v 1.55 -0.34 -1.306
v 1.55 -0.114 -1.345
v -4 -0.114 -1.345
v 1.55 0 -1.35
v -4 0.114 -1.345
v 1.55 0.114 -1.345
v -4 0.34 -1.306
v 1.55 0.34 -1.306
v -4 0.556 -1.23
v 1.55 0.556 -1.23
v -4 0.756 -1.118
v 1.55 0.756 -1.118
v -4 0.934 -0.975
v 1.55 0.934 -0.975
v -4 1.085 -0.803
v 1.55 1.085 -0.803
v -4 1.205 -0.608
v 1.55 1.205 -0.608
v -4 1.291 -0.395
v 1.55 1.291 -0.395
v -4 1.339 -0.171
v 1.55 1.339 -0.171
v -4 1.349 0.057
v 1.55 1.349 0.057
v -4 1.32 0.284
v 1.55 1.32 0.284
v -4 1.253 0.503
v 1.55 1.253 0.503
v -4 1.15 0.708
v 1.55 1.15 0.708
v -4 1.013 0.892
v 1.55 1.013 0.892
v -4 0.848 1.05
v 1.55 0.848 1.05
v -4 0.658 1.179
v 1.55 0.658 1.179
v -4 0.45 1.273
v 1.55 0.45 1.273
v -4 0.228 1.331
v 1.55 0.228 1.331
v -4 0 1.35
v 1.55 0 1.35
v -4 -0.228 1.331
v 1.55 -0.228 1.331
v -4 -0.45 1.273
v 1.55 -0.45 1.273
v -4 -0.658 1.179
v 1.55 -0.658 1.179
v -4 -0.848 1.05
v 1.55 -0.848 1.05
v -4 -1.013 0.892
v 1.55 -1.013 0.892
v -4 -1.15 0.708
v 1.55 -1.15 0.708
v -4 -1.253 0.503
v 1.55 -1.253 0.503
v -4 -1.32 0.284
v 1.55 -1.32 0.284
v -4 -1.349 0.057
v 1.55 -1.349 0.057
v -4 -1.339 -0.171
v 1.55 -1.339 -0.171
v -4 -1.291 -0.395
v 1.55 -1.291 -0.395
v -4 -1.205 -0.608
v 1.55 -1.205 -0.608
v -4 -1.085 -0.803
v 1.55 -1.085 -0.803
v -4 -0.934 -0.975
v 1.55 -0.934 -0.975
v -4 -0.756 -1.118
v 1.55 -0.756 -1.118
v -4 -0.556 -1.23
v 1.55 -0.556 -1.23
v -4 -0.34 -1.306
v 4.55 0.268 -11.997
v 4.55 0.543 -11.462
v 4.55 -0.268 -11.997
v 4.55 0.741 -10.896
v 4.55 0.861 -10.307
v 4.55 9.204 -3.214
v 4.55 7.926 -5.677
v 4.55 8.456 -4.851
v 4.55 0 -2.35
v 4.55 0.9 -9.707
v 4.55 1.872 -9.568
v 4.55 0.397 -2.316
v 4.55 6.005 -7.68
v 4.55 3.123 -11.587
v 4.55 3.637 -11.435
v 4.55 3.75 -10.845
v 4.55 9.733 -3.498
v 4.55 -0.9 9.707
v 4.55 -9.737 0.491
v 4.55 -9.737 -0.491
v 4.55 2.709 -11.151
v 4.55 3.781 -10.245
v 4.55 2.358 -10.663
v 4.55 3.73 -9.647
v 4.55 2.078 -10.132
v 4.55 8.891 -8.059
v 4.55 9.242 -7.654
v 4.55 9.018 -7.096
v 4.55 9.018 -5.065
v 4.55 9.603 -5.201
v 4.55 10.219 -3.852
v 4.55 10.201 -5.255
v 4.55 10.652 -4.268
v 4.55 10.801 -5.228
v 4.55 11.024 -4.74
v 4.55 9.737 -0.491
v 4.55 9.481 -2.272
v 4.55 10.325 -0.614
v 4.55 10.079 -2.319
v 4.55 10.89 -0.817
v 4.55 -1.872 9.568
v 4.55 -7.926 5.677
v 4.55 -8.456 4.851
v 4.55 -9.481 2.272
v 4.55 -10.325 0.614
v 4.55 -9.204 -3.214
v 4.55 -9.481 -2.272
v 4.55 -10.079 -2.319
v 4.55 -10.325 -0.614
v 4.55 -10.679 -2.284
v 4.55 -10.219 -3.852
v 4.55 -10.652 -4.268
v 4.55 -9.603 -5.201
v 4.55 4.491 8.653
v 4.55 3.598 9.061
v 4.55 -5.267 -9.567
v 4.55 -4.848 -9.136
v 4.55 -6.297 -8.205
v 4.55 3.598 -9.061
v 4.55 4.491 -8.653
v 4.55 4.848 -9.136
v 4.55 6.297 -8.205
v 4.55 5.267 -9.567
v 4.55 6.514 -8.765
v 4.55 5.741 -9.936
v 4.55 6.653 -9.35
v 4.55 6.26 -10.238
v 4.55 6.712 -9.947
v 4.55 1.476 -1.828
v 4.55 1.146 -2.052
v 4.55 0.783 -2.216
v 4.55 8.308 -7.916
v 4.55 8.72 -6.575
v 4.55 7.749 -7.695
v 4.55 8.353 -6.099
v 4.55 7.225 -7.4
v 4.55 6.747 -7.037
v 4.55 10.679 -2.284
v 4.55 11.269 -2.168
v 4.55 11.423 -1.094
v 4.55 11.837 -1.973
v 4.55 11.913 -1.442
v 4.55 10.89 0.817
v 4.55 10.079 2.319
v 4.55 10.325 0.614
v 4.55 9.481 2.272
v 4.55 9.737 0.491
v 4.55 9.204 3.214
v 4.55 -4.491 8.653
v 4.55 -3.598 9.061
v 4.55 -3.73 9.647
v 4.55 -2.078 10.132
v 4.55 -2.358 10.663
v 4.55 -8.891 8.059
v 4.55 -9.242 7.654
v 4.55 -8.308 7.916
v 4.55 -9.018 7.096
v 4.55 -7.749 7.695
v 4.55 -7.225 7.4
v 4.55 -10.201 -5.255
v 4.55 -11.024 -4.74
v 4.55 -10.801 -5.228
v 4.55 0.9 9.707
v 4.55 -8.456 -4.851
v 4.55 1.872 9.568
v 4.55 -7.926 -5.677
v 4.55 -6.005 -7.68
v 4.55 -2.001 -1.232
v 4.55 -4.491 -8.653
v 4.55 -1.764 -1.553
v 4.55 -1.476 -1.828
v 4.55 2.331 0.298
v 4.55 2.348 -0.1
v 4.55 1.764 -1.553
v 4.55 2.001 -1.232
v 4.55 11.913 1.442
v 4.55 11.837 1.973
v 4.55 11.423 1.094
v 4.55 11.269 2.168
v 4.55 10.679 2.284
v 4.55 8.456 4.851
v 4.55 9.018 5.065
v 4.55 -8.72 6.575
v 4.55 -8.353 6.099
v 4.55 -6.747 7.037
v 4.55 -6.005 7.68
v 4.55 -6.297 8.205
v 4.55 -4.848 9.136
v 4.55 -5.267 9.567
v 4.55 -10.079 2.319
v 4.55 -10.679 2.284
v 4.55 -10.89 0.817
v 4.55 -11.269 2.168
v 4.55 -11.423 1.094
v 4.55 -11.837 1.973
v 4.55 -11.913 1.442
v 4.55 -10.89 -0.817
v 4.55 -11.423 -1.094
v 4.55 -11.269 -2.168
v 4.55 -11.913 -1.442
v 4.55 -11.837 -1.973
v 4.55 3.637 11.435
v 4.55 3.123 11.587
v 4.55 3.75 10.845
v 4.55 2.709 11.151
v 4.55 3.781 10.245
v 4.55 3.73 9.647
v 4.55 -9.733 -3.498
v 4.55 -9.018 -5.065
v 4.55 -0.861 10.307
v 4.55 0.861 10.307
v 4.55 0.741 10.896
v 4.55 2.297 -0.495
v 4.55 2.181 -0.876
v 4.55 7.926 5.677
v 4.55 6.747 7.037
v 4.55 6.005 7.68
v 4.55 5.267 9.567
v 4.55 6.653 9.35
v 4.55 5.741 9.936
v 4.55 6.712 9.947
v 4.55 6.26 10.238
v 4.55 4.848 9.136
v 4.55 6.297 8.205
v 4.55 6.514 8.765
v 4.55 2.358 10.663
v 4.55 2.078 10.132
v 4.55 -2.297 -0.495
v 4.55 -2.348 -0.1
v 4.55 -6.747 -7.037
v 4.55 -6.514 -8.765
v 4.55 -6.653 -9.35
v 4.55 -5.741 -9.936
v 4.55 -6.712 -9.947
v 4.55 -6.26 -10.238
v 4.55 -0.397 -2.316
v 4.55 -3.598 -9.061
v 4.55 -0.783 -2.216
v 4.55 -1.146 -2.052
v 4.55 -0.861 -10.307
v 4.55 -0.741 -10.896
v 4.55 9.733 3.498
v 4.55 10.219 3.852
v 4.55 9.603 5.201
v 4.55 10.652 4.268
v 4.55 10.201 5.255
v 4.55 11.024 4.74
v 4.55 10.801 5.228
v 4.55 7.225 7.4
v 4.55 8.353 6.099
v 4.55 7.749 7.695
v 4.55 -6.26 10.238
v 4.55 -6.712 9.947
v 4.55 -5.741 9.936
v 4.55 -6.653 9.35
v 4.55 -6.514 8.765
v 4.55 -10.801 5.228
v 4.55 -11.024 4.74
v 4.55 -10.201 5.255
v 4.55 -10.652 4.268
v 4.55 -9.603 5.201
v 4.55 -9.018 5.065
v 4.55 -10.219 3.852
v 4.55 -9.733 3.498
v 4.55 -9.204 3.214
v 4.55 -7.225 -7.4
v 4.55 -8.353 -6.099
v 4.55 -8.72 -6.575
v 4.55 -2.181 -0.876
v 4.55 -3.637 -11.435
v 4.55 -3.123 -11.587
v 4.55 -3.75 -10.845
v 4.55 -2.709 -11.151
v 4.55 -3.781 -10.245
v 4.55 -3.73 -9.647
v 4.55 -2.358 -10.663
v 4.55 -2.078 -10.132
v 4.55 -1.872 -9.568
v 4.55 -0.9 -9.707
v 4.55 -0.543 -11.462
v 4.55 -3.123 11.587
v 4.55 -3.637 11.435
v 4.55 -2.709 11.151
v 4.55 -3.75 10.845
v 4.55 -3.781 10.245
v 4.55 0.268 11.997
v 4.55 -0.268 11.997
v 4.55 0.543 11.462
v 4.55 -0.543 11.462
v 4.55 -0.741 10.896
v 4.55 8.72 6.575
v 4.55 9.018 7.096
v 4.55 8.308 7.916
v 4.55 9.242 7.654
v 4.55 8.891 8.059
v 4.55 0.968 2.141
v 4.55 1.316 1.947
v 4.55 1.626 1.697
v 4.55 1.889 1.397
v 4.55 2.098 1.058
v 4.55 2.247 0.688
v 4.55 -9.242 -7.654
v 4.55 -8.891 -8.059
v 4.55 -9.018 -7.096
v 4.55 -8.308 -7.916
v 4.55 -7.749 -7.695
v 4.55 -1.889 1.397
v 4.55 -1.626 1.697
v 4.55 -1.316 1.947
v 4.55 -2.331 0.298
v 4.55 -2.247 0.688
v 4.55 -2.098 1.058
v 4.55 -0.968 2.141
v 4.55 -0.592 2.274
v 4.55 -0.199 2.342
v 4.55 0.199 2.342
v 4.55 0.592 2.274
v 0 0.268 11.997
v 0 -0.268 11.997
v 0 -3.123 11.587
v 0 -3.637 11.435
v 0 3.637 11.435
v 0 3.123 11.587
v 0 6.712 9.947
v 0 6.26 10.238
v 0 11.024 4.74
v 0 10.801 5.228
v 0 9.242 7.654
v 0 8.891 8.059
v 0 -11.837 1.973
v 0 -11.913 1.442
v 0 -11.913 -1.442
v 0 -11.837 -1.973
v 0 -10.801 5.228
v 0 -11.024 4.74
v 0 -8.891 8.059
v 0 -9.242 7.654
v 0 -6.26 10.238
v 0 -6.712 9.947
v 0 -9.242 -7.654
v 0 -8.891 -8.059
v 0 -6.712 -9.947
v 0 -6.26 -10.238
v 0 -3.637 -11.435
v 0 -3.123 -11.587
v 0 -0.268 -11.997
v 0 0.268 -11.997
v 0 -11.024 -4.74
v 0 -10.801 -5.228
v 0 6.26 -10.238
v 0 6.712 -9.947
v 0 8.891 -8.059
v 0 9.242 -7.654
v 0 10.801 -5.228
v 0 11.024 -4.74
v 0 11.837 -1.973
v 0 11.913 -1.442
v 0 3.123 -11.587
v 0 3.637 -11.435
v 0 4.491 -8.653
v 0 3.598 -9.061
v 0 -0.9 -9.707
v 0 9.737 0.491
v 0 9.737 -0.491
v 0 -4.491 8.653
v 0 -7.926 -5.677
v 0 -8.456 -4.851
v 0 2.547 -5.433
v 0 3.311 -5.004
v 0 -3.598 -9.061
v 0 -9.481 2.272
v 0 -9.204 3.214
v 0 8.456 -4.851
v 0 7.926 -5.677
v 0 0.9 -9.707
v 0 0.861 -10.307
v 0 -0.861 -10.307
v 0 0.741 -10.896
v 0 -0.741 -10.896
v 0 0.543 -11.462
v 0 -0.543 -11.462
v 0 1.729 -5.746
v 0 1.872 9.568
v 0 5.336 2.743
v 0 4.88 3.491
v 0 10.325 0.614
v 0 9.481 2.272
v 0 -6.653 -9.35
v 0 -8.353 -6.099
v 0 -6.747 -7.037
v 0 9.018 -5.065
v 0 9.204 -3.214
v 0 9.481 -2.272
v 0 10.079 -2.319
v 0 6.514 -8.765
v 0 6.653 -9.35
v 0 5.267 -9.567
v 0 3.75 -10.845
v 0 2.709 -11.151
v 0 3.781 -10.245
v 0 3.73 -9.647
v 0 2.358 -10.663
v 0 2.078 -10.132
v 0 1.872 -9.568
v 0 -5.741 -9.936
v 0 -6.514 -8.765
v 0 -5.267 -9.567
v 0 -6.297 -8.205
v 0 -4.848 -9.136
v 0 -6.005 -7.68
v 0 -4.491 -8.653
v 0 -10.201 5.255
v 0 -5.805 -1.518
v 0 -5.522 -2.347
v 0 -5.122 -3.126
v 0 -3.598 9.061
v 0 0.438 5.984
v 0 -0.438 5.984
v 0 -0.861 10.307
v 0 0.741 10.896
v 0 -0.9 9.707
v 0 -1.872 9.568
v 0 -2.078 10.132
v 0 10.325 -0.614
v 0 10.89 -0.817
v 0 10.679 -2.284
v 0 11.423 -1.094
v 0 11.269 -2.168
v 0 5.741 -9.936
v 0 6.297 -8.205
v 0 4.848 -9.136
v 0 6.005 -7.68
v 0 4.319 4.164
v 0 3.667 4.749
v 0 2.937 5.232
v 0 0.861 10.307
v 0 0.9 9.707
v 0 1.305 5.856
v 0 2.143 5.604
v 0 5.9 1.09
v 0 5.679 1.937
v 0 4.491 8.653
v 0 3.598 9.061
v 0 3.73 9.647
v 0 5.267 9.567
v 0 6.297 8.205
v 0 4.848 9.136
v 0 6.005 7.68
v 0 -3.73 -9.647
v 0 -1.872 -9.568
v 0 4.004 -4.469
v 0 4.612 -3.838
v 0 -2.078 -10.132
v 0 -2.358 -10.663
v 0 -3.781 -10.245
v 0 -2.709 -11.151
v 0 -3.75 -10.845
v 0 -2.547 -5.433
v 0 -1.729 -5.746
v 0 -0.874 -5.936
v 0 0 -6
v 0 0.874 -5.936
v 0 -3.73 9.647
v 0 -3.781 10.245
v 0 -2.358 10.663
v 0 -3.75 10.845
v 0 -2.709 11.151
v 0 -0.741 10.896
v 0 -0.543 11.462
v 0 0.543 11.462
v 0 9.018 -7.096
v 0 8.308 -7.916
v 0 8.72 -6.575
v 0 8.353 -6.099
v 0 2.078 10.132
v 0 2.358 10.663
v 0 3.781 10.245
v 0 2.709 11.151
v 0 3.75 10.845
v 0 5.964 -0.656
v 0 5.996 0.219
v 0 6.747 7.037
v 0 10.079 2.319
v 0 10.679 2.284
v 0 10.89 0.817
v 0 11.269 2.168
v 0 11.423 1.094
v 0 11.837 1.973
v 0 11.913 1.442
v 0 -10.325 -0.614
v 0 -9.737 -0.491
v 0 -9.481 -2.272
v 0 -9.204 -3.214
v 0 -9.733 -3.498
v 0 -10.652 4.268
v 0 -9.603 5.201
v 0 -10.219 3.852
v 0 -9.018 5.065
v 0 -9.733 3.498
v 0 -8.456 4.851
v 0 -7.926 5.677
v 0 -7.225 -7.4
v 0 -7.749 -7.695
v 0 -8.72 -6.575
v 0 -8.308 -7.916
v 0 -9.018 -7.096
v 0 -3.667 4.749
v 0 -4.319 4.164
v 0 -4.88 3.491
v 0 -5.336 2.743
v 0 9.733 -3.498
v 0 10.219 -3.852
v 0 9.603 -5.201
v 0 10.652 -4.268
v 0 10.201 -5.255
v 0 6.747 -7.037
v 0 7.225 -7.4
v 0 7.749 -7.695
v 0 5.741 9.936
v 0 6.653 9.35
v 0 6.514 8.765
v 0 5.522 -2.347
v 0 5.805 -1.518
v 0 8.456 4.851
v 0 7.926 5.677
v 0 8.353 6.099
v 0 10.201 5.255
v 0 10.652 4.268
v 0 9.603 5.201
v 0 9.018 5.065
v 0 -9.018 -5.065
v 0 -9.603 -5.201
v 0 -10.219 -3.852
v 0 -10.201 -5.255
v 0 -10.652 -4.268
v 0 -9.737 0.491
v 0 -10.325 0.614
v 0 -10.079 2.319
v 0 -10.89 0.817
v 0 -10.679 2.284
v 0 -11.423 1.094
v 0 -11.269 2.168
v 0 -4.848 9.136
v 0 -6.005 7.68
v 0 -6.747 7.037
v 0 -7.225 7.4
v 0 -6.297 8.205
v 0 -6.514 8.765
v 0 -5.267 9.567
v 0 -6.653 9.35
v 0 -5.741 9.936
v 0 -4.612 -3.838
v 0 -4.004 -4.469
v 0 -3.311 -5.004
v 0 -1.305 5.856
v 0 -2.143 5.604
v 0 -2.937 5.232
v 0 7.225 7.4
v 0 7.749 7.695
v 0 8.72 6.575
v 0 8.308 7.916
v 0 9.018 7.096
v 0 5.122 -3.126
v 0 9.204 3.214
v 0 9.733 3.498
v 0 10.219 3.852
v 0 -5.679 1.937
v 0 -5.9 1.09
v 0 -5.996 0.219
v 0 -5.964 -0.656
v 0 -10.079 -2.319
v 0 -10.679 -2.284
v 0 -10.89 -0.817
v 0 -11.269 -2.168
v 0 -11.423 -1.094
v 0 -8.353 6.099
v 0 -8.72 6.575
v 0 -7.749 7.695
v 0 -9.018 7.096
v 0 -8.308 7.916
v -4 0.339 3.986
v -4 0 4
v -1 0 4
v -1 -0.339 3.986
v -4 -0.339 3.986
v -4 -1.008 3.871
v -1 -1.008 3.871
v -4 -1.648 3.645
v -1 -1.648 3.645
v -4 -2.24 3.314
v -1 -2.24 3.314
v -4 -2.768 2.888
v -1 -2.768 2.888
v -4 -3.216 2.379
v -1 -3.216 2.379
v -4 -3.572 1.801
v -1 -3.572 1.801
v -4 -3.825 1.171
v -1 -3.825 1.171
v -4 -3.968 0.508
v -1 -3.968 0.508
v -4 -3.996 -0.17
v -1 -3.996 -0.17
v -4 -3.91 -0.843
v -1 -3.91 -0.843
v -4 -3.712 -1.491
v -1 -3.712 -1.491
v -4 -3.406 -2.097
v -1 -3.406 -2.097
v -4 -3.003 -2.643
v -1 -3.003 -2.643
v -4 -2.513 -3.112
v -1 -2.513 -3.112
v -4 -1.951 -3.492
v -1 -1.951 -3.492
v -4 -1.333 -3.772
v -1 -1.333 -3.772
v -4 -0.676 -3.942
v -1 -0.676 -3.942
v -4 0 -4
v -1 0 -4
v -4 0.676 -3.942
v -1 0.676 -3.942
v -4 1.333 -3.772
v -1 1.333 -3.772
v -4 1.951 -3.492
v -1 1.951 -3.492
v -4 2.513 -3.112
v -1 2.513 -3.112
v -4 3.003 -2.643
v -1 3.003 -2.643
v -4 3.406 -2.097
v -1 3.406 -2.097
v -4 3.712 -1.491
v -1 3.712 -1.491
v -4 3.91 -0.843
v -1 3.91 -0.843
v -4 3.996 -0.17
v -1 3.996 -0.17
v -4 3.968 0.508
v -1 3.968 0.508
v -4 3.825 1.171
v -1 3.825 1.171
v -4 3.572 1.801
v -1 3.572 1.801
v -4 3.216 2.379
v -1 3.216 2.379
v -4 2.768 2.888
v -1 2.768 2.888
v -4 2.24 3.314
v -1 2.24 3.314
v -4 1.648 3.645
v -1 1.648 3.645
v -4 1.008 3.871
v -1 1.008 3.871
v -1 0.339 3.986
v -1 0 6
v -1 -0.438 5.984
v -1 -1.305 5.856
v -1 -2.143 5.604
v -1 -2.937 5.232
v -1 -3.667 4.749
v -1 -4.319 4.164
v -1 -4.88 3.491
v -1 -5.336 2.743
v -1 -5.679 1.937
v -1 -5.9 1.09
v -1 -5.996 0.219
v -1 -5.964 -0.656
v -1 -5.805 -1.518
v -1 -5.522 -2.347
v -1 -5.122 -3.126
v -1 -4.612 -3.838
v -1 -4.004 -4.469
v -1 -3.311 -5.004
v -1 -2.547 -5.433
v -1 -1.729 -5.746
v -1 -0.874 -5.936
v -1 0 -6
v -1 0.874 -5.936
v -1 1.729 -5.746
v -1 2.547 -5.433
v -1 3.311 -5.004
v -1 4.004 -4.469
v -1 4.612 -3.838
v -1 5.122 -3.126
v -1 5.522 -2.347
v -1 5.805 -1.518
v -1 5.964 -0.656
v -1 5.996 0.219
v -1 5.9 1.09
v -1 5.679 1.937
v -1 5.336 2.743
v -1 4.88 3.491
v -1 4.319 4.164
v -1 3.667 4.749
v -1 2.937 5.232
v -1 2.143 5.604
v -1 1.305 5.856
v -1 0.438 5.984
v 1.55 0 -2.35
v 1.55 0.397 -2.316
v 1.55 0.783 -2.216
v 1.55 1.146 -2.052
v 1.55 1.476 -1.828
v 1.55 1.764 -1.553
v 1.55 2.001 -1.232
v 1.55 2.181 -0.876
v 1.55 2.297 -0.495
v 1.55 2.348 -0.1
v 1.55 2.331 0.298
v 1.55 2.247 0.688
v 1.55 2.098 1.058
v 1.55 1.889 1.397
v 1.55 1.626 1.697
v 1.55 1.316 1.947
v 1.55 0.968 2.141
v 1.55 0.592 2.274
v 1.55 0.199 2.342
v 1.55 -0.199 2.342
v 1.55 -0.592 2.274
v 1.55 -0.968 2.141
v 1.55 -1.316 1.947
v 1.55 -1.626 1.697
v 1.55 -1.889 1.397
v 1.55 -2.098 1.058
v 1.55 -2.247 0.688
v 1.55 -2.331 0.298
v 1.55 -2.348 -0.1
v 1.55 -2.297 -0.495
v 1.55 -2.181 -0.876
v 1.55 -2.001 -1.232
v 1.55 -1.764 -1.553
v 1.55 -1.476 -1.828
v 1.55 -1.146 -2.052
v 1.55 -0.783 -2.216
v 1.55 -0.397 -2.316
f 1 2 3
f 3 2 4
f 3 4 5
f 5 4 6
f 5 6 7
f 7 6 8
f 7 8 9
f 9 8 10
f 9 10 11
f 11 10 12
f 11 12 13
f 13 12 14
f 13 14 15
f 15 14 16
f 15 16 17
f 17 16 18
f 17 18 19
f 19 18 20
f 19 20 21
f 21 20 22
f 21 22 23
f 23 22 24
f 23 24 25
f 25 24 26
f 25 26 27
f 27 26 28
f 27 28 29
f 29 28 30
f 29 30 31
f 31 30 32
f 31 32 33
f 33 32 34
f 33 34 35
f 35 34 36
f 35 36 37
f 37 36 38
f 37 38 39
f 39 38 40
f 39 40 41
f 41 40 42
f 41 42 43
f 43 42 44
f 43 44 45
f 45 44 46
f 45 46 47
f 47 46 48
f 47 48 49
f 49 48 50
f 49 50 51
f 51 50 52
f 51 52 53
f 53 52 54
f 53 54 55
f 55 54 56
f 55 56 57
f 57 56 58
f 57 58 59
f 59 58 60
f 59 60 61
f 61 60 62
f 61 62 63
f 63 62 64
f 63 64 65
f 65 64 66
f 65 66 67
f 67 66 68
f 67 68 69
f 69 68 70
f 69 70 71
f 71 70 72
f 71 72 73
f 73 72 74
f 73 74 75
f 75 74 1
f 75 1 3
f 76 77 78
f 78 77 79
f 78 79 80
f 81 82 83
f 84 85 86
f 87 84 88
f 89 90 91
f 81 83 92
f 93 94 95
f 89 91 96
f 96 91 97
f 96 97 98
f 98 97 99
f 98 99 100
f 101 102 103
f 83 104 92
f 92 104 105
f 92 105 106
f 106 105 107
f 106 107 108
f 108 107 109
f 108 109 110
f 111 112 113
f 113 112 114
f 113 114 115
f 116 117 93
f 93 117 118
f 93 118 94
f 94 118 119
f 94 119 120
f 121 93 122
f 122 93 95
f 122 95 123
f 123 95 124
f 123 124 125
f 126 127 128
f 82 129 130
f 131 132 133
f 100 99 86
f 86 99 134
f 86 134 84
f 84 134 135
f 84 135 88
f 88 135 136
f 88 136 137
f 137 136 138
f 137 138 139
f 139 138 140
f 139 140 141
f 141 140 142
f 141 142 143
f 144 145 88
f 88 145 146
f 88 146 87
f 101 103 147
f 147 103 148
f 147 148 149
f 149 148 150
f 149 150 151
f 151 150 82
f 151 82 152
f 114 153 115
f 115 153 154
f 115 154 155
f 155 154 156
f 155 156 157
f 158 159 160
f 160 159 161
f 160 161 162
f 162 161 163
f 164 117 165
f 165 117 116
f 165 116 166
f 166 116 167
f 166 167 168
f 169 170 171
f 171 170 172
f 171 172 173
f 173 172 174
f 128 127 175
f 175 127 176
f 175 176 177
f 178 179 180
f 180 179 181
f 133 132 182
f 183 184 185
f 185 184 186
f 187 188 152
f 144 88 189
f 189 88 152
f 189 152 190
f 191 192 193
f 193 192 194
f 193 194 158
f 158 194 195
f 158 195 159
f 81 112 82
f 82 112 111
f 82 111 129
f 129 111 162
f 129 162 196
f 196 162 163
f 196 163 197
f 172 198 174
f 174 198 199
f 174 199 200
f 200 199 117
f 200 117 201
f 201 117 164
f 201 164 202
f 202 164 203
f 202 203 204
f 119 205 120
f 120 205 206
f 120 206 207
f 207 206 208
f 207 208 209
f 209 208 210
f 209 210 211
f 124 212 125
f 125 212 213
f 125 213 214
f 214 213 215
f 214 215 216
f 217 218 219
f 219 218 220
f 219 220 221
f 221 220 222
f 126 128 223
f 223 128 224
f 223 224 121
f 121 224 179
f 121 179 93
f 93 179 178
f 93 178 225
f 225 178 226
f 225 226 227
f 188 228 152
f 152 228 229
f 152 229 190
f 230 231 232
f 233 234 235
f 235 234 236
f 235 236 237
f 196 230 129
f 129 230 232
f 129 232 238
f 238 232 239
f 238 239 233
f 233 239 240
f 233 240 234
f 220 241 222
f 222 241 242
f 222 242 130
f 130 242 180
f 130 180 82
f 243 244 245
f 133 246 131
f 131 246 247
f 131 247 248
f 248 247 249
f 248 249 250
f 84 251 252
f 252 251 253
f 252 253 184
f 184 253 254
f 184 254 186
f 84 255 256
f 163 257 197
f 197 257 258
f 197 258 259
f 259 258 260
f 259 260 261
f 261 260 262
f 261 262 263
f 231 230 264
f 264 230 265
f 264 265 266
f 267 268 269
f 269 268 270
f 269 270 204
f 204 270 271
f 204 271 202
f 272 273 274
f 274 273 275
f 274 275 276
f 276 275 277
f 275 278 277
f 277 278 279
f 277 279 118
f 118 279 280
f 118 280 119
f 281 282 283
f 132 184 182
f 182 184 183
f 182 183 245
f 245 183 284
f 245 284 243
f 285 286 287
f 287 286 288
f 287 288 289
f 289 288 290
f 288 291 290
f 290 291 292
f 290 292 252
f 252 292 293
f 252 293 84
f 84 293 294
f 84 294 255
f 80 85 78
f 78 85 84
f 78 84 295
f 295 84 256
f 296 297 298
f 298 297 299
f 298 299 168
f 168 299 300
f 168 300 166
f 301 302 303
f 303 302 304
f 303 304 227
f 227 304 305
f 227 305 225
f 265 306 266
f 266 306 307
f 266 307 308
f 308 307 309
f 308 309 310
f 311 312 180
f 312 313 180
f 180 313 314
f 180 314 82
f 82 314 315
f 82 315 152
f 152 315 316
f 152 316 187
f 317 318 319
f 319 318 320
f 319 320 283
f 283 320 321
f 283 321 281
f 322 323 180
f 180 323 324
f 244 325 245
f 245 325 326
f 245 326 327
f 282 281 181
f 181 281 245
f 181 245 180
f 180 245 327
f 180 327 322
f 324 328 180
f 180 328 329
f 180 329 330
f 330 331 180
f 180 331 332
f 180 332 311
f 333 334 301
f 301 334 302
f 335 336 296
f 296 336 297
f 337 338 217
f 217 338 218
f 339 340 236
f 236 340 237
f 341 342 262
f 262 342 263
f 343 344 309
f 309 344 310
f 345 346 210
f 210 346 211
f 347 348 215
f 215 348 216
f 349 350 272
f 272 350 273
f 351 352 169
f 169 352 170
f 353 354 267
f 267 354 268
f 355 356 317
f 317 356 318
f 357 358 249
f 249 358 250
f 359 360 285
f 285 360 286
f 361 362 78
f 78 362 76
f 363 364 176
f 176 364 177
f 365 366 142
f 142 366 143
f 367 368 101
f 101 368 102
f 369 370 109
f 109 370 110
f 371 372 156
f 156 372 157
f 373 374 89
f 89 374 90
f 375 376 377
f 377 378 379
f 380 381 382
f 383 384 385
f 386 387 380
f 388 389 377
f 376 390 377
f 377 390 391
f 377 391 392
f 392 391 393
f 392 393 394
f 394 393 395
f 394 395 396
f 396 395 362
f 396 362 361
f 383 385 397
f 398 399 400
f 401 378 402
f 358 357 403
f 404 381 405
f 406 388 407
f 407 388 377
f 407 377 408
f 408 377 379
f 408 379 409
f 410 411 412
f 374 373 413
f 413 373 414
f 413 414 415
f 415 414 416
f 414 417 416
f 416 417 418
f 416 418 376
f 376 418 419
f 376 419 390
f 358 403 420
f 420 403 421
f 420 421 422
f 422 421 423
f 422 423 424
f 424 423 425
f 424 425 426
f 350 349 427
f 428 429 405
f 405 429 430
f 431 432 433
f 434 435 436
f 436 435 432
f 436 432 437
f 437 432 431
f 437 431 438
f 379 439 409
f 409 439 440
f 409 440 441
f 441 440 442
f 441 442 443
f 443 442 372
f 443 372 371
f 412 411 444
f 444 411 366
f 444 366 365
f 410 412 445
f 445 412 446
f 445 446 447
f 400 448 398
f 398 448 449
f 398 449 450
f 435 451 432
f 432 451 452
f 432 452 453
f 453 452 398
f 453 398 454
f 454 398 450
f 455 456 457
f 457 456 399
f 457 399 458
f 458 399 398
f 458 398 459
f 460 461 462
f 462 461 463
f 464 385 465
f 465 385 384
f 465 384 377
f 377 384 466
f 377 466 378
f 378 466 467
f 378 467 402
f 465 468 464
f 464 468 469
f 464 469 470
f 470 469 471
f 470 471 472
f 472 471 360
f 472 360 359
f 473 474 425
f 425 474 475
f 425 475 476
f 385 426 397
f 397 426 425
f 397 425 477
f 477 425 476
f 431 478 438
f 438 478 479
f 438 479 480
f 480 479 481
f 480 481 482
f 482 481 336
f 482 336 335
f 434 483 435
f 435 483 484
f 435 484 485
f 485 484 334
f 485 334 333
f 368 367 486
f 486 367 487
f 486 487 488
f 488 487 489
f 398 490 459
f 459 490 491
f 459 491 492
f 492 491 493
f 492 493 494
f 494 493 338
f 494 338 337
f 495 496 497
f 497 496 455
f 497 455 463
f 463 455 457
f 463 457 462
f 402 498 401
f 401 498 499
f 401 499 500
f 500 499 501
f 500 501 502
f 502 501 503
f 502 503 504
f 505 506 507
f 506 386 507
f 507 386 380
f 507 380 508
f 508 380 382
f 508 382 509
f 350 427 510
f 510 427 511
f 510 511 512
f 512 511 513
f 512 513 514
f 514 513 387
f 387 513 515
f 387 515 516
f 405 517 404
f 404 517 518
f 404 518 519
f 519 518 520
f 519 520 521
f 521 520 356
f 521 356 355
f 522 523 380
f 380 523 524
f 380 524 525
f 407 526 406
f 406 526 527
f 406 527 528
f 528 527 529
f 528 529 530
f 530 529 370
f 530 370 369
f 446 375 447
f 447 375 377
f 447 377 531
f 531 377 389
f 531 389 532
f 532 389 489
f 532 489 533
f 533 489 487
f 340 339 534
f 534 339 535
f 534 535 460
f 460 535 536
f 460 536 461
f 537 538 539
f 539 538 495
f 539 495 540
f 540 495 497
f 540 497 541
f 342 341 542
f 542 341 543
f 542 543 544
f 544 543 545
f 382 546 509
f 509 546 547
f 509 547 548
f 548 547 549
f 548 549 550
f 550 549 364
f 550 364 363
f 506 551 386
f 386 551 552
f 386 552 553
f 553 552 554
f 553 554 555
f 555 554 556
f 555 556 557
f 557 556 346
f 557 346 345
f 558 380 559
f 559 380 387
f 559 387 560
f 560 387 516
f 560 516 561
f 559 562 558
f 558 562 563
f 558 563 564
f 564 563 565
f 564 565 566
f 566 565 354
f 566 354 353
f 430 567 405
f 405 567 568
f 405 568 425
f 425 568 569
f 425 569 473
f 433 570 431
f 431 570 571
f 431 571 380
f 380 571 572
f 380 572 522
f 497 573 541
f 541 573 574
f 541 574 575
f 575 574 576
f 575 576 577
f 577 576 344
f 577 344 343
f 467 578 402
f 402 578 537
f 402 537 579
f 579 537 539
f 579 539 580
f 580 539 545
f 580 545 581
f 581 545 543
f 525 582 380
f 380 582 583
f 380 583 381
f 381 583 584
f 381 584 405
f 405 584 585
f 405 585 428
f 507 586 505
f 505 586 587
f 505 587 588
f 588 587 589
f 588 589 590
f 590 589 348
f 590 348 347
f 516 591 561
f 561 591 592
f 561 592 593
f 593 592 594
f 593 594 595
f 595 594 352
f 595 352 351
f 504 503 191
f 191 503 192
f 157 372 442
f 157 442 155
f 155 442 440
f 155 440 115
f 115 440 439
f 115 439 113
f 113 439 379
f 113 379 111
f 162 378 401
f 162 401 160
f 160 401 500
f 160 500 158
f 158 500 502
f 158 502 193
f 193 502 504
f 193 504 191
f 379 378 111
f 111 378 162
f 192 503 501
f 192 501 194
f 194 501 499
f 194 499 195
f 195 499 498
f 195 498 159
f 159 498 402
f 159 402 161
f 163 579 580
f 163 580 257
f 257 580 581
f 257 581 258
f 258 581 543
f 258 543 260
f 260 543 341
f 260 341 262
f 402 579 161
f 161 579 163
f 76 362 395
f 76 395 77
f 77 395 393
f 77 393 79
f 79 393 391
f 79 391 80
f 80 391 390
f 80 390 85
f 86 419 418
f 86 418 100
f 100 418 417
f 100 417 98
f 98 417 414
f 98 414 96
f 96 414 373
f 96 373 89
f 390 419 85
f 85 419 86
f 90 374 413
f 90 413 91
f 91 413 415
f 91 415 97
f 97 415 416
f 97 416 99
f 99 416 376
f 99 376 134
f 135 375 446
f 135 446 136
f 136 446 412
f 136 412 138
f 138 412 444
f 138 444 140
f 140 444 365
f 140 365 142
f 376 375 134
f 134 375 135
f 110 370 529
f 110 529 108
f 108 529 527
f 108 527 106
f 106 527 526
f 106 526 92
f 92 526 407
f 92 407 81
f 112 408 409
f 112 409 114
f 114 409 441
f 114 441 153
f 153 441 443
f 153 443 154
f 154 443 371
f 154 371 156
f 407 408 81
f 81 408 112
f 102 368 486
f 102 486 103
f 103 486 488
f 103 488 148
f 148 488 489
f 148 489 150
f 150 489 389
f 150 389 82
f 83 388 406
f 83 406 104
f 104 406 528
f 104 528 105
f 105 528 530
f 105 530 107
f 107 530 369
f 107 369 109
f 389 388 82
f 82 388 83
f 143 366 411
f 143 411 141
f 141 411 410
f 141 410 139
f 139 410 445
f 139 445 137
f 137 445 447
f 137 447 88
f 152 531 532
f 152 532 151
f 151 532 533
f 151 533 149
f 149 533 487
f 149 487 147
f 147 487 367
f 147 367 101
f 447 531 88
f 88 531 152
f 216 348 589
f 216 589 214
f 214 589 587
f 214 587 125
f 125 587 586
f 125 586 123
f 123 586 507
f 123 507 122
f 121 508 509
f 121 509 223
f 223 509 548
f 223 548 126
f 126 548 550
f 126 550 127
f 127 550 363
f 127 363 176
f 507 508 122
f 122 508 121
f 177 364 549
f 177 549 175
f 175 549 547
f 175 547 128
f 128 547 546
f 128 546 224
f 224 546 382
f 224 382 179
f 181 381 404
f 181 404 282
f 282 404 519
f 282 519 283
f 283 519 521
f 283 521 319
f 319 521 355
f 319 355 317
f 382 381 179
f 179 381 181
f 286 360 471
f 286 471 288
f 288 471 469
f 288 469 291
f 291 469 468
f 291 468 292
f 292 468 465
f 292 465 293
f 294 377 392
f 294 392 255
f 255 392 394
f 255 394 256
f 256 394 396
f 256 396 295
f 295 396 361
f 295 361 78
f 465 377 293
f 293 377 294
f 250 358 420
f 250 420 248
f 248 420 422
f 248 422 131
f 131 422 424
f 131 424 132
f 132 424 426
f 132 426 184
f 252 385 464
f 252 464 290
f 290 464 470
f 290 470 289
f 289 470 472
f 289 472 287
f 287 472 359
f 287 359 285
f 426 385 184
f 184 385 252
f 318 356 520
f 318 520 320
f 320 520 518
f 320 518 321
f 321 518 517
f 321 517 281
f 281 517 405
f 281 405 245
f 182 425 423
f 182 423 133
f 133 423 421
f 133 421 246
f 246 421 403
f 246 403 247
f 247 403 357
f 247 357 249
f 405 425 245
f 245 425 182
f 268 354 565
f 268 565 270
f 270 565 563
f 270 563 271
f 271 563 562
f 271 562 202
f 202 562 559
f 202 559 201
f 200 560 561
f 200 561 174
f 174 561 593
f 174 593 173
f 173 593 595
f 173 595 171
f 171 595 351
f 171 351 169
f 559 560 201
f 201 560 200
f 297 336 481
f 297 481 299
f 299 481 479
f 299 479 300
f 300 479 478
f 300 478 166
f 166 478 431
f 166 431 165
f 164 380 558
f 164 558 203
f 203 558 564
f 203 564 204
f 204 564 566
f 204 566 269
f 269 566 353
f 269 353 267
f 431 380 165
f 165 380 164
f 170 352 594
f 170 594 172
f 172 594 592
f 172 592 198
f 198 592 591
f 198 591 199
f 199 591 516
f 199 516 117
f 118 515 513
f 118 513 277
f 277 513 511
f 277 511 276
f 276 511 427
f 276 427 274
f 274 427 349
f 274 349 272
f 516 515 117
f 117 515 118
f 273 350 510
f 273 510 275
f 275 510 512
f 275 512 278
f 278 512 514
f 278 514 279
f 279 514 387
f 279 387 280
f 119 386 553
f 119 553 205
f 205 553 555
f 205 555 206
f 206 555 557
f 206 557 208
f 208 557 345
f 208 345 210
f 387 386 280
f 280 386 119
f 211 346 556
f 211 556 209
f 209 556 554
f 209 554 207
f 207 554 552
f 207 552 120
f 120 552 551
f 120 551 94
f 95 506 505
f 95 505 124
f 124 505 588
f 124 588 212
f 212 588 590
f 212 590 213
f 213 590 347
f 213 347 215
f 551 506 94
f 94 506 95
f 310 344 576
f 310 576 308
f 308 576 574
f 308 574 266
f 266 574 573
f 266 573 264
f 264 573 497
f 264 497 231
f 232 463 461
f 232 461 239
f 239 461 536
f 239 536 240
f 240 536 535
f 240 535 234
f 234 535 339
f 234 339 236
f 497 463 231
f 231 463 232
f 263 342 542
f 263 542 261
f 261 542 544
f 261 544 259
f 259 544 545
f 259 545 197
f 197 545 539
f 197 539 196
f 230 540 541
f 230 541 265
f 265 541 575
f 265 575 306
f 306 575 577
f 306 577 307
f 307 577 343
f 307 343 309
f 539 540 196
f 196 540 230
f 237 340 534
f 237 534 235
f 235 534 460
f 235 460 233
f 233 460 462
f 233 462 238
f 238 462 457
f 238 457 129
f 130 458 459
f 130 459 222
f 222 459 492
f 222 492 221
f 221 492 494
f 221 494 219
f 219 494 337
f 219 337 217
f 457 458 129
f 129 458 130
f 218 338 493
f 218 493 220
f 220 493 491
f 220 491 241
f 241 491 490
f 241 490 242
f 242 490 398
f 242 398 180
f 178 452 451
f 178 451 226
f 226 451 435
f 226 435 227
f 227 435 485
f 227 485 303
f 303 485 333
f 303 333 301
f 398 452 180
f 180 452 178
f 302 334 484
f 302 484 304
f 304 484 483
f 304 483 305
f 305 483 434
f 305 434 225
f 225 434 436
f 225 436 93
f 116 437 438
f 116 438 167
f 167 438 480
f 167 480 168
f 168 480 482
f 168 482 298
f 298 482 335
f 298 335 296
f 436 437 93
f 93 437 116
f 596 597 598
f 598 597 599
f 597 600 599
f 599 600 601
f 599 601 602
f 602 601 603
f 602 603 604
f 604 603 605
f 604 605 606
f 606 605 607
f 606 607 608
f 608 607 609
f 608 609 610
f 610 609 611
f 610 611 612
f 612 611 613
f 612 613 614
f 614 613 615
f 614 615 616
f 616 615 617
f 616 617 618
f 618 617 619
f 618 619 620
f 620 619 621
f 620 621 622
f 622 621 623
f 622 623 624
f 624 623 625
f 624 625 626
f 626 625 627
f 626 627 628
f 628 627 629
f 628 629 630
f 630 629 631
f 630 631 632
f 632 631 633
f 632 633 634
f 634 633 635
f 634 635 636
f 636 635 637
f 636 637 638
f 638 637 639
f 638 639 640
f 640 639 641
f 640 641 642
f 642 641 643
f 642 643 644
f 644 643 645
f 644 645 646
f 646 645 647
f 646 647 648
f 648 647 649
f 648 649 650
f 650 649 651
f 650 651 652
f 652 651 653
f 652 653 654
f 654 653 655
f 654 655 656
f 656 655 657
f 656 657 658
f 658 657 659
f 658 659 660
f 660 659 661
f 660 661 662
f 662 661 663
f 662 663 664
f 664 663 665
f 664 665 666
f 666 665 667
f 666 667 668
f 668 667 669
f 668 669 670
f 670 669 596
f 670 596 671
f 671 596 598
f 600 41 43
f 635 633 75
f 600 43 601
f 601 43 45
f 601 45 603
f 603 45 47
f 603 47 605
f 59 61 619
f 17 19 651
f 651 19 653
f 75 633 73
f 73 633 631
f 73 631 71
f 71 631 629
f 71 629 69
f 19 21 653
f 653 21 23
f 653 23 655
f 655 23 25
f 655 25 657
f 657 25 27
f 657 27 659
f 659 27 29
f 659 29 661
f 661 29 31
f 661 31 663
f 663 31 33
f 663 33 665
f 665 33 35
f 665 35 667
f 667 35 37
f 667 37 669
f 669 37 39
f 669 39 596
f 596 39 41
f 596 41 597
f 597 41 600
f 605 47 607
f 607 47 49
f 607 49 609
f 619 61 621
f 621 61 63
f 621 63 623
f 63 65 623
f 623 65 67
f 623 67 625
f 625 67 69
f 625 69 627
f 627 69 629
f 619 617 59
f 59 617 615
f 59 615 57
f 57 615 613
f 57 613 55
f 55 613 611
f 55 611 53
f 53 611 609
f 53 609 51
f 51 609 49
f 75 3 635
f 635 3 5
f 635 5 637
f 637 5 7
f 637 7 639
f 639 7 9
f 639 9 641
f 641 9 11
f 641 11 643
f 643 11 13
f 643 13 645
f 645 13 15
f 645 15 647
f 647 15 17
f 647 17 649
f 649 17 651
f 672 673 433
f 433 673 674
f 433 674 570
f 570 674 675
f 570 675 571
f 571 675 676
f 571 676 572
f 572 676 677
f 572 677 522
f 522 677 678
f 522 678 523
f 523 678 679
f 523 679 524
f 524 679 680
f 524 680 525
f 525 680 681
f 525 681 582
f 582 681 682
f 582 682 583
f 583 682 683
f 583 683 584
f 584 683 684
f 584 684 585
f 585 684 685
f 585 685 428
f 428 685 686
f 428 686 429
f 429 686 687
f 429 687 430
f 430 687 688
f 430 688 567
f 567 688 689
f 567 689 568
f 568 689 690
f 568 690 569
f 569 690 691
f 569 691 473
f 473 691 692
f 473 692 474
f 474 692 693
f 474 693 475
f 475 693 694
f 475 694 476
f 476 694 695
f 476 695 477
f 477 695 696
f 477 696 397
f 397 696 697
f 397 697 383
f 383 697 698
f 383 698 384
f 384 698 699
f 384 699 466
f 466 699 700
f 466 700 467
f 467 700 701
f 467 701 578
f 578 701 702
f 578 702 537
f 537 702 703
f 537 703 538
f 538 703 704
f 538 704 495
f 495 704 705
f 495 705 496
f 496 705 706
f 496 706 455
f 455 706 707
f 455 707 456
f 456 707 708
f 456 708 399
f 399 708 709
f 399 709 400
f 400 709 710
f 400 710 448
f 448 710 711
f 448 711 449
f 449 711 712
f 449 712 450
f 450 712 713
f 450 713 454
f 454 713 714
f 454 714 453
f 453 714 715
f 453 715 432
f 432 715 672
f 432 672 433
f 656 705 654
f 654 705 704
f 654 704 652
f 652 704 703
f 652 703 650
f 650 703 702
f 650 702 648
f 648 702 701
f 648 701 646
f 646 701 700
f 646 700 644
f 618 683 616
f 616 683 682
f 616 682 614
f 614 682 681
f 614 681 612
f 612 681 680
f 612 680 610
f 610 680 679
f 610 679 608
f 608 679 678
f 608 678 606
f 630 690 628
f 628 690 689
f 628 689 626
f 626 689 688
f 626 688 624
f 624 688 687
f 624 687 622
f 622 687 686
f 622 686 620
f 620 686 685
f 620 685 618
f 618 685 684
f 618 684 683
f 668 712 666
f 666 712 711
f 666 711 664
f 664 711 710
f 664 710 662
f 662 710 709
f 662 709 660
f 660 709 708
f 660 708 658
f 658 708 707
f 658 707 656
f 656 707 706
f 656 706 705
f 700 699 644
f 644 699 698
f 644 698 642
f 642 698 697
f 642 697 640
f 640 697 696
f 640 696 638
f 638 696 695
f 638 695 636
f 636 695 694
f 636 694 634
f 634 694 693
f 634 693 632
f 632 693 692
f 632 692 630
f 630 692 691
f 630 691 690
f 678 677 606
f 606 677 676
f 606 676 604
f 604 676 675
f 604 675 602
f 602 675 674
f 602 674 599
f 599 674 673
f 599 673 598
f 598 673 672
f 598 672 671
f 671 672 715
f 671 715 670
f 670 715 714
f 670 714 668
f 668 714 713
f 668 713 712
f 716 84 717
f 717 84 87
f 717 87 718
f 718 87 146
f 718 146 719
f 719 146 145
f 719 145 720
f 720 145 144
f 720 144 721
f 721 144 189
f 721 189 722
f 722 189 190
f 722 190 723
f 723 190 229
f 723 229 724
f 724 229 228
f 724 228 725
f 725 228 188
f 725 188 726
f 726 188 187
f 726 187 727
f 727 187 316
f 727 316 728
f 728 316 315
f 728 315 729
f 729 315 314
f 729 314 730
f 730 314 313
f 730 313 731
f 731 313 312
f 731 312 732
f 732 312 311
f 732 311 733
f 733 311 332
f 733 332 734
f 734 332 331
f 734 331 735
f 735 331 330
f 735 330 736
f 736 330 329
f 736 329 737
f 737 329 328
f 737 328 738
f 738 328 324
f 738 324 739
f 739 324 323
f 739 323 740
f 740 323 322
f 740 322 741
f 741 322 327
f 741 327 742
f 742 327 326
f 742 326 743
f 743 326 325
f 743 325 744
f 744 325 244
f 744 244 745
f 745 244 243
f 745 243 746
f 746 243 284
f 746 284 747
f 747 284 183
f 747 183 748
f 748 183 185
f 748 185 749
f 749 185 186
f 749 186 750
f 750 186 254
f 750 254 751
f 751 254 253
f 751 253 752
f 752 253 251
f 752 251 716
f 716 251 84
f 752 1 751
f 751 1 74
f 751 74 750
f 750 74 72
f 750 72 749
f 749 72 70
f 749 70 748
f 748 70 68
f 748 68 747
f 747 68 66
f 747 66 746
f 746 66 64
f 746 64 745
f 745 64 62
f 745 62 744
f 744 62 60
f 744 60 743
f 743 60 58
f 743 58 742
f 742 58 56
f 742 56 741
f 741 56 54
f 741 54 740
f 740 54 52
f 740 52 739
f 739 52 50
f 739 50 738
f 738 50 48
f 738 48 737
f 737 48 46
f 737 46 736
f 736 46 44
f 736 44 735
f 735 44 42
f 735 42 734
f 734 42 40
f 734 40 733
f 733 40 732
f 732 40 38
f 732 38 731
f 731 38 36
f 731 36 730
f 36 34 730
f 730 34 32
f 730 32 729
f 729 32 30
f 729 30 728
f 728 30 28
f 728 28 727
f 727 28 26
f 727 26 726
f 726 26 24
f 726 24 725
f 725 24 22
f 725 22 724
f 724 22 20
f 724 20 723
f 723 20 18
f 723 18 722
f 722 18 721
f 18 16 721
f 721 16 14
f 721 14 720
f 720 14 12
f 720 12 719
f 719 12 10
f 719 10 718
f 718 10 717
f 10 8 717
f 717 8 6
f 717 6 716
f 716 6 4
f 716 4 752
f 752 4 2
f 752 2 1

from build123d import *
from build123d.topology import SkipClean

# Parameters (mm, degrees)
BASPROSKE_W         = 4.55
BASPROSKE_H         = 12
TOOTHCUT_DEPTH      = 18.569931702
TEETHCUTS_COUNT     = 22
TEETHCUTS_ANGLE     = 343.636363636
BORSKE_R            = 1.35
BORE_DEPTH          = 50.0000508
SKETCH1_R           = 4
SKETCH1_R_2         = 1.35
BOSS_EXTRUDE1_DEPTH = 4
SKETCH1_4_R         = 6
SKETCH1_4_R_2       = 4
BOSS_EXTRUDE2_DEPTH = 1
SKETCH2_2_R         = 2.35
CUT_EXTRUDE1_DEPTH  = 3


with BuildPart() as part:
    # BasProSke → Base-Revolve (revolve)
    with BuildSketch(Plane(origin=(0, 0, 0), x_dir=(1, 0, 0), z_dir=(0, 1, 0))):
        with Locations((2.275, 6)):
            Rectangle(BASPROSKE_W, BASPROSKE_H)
    revolve(axis=Axis((-10, 0, 0), (1, 0, 0)))

    # TooCutSke → ToothCut (cut, through all)
    with BuildSketch(Plane(origin=(0, 0, 0), x_dir=(0, 0, -1), z_dir=(1, 0, 0))):
        with BuildLine():
            ThreePointArc((0.491001901, 9.736627657), (0, 9.749), (-0.491001901, 9.736627657))
            ThreePointArc((-0.491001901, 9.736627657), (-0.822824844, 10.904005344), (-1.46093845, 11.936327074))
            ThreePointArc((-1.46093845, 11.936327074), (0, 12.0254), (1.46093845, 11.936327074))
            ThreePointArc((1.46093845, 11.936327074), (0.822824844, 10.904005344), (0.491001901, 9.736627657))
        make_face()
    toothcut = extrude(amount=TOOTHCUT_DEPTH, mode=Mode.SUBTRACT)

    # TeethCuts: ToothCut ×22 about axis
    teethcuts_axis = Axis((-10, 0, 0), (1, 0, 0))
    for i in range(1, TEETHCUTS_COUNT):
        add(toothcut.rotate(teethcuts_axis, i * TEETHCUTS_ANGLE / (TEETHCUTS_COUNT - 1)), mode=Mode.SUBTRACT)

    # BorSke → Bore (cut, symmetric)
    with BuildSketch(Plane(origin=(0, 0, 0), x_dir=(0, 0, -1), z_dir=(1, 0, 0))):
        Circle(BORSKE_R)
    extrude(amount=BORE_DEPTH, both=True, mode=Mode.SUBTRACT)

    # Sketch1 → Boss-Extrude1 (add)
    with SkipClean():  # the faces are left unmerged after this step: merging them gives an invalid solid
        with BuildSketch(Plane.ZY):
            Circle(SKETCH1_R)
            Circle(SKETCH1_R_2, mode=Mode.SUBTRACT)
        extrude(amount=BOSS_EXTRUDE1_DEPTH)

    # Sketch1<4> → Boss-Extrude2 (add)
    with SkipClean():  # the faces are left unmerged after this step: merging them gives an invalid solid
        with BuildSketch(Plane.ZY):
            Circle(SKETCH1_4_R)
            Circle(SKETCH1_4_R_2, mode=Mode.SUBTRACT)
        extrude(amount=BOSS_EXTRUDE2_DEPTH)

    # Sketch2<2> → Cut-Extrude1 (cut)
    with SkipClean():  # the faces are left unmerged after this step: merging them gives an invalid solid
        with BuildSketch(Plane(origin=(4.55, 0, 0), x_dir=(0, 0, -1), z_dir=(1, 0, 0))):
            Circle(SKETCH2_2_R)
        extrude(amount=-CUT_EXTRUDE1_DEPTH, mode=Mode.SUBTRACT)


solid = part.part
